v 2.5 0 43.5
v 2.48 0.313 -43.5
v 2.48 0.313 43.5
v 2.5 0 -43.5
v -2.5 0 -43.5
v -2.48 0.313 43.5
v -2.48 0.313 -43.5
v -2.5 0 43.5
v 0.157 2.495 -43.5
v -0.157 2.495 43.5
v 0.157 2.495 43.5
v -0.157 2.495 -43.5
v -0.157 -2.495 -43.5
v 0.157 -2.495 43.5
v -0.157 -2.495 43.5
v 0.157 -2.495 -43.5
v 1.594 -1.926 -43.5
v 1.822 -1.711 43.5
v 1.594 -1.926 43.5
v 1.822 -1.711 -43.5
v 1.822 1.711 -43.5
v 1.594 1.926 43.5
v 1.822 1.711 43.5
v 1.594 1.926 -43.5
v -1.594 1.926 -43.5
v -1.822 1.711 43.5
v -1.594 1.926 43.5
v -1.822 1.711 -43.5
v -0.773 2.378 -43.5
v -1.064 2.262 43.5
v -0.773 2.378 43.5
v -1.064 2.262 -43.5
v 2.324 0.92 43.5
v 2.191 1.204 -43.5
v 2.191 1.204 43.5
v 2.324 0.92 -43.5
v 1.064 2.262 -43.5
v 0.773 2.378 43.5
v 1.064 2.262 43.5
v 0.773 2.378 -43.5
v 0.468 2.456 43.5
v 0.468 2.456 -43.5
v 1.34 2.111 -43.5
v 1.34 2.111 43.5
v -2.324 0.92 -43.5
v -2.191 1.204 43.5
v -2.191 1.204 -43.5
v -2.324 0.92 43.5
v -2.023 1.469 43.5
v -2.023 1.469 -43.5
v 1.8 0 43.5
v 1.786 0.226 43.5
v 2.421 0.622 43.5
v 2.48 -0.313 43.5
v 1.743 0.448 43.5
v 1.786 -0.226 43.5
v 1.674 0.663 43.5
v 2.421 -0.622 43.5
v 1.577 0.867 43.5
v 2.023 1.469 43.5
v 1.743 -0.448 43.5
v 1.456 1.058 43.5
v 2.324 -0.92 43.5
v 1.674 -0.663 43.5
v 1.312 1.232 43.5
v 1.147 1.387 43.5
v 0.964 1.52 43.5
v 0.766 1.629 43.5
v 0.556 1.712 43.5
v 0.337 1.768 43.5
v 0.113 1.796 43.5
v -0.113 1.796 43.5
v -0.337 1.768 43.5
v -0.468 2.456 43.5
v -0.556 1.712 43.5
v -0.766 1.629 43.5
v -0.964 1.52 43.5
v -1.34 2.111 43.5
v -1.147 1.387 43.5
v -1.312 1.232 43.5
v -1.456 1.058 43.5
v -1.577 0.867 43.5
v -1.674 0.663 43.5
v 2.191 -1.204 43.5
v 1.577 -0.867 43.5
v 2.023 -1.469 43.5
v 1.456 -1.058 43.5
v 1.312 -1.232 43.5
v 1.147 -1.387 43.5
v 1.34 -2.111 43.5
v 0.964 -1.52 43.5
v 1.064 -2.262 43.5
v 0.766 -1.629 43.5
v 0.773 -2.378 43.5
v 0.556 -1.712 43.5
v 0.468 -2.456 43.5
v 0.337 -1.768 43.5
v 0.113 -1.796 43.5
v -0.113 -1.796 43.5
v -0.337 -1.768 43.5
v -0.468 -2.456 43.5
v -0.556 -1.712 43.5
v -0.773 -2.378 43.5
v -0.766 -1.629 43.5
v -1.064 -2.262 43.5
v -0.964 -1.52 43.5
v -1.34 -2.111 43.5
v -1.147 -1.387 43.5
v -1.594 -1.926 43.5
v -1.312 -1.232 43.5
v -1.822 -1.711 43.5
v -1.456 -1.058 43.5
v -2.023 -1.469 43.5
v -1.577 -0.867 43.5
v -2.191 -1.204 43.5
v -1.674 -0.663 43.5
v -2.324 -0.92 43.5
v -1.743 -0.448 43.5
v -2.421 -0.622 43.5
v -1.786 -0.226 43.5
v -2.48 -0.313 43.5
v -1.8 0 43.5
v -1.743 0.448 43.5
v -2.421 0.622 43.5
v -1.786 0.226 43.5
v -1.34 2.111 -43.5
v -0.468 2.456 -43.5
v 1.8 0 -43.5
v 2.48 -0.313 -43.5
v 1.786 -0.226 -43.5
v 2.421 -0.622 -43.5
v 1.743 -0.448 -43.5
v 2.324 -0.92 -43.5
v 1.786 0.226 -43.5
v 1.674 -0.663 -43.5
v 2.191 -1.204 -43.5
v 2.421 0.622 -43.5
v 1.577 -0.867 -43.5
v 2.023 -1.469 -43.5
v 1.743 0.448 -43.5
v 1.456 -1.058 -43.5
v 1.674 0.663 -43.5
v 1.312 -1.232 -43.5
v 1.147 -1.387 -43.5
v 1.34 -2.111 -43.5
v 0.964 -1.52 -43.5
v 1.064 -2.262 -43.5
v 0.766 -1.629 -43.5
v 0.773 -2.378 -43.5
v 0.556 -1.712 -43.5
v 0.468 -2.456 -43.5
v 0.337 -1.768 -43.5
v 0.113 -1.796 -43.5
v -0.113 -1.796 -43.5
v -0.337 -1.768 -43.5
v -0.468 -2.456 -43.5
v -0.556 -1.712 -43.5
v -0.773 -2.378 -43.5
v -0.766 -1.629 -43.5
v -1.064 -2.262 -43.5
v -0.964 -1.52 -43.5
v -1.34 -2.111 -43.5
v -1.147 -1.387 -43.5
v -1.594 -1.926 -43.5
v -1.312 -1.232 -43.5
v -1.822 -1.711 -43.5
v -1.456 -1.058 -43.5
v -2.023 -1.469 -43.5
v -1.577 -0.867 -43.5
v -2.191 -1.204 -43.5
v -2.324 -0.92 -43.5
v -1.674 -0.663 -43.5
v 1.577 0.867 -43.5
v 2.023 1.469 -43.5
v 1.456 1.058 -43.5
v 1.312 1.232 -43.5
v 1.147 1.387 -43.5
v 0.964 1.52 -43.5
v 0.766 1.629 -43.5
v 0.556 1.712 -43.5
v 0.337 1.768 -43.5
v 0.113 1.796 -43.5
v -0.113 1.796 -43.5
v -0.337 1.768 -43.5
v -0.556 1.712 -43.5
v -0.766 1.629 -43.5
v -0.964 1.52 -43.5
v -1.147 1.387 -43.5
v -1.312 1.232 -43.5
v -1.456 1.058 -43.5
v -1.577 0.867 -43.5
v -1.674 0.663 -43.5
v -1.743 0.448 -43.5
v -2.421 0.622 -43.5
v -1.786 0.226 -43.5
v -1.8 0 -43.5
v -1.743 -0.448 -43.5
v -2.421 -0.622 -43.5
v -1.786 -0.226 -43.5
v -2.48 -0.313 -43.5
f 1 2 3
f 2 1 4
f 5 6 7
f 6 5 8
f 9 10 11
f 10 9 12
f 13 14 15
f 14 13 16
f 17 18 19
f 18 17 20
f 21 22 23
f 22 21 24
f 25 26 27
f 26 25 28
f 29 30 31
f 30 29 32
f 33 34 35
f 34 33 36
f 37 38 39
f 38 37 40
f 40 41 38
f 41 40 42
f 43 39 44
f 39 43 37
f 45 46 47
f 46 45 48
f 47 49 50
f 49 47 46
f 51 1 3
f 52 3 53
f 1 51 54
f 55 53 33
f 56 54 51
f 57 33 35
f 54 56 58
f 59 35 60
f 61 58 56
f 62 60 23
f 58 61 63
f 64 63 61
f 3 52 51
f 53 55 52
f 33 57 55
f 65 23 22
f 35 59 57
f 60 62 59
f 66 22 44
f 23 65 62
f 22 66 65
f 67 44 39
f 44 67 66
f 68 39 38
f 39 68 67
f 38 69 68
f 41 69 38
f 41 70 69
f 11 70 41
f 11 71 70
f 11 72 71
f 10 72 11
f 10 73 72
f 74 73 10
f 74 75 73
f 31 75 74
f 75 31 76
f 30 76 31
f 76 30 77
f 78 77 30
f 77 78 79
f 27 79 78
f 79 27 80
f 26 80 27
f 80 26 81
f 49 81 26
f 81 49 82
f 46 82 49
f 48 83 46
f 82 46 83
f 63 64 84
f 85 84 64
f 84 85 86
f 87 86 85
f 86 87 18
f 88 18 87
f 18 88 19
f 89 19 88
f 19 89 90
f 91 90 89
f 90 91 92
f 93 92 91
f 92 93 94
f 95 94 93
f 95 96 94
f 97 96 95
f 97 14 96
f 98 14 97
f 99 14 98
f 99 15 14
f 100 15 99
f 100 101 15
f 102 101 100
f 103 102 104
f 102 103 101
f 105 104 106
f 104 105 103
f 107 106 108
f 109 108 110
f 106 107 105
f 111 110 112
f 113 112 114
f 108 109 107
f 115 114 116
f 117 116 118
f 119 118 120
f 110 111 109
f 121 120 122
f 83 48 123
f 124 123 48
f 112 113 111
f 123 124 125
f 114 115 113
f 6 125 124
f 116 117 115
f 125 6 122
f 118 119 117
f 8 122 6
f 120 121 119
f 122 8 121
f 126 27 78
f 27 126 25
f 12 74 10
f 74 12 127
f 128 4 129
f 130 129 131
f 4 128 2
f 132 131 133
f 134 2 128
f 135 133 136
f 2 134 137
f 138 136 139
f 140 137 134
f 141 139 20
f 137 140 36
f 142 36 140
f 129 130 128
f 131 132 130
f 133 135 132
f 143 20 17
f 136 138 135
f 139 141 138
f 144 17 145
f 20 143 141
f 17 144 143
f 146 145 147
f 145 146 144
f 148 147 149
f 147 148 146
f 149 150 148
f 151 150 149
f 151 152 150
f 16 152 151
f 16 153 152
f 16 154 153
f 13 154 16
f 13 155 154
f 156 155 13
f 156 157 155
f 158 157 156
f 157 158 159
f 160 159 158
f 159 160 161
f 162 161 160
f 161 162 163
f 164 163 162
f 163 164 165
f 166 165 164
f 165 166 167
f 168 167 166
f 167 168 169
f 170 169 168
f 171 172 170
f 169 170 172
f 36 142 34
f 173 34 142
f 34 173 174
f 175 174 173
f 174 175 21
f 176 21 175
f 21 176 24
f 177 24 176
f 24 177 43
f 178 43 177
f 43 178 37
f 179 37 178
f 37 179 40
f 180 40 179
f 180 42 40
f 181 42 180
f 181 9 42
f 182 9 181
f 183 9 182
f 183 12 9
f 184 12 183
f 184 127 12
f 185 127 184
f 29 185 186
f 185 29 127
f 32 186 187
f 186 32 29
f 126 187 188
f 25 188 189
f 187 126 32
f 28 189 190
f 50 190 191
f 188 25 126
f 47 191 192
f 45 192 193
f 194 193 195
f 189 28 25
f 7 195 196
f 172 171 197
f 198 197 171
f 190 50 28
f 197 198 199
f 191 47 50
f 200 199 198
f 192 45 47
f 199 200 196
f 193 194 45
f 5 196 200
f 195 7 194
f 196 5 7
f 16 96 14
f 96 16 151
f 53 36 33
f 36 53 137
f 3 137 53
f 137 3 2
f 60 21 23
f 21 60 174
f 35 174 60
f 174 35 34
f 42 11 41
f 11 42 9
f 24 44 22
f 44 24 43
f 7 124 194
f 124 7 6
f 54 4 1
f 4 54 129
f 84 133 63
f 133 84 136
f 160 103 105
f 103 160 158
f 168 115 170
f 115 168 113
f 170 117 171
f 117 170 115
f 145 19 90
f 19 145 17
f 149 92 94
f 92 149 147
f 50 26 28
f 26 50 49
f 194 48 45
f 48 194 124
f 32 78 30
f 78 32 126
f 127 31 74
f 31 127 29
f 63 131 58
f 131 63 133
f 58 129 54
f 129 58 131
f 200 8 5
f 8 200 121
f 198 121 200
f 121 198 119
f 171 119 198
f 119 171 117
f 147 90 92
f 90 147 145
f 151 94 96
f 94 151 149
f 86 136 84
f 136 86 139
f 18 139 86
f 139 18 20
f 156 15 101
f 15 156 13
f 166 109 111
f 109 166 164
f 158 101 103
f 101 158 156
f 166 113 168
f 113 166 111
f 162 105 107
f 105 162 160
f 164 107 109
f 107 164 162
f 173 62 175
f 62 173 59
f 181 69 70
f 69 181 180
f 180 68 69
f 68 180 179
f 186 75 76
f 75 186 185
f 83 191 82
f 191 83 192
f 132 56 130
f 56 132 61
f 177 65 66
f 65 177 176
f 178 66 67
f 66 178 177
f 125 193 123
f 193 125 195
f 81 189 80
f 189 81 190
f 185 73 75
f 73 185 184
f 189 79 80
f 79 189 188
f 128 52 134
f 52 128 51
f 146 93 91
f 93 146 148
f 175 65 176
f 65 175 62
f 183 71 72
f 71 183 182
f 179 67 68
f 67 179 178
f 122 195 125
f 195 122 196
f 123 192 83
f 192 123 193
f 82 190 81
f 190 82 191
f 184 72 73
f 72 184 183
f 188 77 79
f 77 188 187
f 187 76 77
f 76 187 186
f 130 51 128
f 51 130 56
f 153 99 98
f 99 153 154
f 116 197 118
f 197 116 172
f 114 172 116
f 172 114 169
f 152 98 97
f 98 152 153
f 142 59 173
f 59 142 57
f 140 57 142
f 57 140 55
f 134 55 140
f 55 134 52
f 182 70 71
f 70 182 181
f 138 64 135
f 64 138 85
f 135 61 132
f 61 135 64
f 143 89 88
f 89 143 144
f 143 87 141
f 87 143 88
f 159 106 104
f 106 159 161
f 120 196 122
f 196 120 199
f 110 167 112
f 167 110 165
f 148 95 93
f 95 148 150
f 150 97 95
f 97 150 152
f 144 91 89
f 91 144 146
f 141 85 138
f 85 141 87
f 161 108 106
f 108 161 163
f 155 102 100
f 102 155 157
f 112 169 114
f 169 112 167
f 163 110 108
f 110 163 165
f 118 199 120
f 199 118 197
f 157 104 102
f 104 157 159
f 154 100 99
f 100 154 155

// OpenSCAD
$fn = 50;


difference() {
	union() {
		translate(v = [0, 0, -43.5000000000]) {
			cylinder(h = 87, r = 2.5000000000);
		}
	}
	union() {
		translate(v = [0, 0, -100.0000000000]) {
			cylinder(h = 200, r = 1.8000000000);
		}
	}
}
